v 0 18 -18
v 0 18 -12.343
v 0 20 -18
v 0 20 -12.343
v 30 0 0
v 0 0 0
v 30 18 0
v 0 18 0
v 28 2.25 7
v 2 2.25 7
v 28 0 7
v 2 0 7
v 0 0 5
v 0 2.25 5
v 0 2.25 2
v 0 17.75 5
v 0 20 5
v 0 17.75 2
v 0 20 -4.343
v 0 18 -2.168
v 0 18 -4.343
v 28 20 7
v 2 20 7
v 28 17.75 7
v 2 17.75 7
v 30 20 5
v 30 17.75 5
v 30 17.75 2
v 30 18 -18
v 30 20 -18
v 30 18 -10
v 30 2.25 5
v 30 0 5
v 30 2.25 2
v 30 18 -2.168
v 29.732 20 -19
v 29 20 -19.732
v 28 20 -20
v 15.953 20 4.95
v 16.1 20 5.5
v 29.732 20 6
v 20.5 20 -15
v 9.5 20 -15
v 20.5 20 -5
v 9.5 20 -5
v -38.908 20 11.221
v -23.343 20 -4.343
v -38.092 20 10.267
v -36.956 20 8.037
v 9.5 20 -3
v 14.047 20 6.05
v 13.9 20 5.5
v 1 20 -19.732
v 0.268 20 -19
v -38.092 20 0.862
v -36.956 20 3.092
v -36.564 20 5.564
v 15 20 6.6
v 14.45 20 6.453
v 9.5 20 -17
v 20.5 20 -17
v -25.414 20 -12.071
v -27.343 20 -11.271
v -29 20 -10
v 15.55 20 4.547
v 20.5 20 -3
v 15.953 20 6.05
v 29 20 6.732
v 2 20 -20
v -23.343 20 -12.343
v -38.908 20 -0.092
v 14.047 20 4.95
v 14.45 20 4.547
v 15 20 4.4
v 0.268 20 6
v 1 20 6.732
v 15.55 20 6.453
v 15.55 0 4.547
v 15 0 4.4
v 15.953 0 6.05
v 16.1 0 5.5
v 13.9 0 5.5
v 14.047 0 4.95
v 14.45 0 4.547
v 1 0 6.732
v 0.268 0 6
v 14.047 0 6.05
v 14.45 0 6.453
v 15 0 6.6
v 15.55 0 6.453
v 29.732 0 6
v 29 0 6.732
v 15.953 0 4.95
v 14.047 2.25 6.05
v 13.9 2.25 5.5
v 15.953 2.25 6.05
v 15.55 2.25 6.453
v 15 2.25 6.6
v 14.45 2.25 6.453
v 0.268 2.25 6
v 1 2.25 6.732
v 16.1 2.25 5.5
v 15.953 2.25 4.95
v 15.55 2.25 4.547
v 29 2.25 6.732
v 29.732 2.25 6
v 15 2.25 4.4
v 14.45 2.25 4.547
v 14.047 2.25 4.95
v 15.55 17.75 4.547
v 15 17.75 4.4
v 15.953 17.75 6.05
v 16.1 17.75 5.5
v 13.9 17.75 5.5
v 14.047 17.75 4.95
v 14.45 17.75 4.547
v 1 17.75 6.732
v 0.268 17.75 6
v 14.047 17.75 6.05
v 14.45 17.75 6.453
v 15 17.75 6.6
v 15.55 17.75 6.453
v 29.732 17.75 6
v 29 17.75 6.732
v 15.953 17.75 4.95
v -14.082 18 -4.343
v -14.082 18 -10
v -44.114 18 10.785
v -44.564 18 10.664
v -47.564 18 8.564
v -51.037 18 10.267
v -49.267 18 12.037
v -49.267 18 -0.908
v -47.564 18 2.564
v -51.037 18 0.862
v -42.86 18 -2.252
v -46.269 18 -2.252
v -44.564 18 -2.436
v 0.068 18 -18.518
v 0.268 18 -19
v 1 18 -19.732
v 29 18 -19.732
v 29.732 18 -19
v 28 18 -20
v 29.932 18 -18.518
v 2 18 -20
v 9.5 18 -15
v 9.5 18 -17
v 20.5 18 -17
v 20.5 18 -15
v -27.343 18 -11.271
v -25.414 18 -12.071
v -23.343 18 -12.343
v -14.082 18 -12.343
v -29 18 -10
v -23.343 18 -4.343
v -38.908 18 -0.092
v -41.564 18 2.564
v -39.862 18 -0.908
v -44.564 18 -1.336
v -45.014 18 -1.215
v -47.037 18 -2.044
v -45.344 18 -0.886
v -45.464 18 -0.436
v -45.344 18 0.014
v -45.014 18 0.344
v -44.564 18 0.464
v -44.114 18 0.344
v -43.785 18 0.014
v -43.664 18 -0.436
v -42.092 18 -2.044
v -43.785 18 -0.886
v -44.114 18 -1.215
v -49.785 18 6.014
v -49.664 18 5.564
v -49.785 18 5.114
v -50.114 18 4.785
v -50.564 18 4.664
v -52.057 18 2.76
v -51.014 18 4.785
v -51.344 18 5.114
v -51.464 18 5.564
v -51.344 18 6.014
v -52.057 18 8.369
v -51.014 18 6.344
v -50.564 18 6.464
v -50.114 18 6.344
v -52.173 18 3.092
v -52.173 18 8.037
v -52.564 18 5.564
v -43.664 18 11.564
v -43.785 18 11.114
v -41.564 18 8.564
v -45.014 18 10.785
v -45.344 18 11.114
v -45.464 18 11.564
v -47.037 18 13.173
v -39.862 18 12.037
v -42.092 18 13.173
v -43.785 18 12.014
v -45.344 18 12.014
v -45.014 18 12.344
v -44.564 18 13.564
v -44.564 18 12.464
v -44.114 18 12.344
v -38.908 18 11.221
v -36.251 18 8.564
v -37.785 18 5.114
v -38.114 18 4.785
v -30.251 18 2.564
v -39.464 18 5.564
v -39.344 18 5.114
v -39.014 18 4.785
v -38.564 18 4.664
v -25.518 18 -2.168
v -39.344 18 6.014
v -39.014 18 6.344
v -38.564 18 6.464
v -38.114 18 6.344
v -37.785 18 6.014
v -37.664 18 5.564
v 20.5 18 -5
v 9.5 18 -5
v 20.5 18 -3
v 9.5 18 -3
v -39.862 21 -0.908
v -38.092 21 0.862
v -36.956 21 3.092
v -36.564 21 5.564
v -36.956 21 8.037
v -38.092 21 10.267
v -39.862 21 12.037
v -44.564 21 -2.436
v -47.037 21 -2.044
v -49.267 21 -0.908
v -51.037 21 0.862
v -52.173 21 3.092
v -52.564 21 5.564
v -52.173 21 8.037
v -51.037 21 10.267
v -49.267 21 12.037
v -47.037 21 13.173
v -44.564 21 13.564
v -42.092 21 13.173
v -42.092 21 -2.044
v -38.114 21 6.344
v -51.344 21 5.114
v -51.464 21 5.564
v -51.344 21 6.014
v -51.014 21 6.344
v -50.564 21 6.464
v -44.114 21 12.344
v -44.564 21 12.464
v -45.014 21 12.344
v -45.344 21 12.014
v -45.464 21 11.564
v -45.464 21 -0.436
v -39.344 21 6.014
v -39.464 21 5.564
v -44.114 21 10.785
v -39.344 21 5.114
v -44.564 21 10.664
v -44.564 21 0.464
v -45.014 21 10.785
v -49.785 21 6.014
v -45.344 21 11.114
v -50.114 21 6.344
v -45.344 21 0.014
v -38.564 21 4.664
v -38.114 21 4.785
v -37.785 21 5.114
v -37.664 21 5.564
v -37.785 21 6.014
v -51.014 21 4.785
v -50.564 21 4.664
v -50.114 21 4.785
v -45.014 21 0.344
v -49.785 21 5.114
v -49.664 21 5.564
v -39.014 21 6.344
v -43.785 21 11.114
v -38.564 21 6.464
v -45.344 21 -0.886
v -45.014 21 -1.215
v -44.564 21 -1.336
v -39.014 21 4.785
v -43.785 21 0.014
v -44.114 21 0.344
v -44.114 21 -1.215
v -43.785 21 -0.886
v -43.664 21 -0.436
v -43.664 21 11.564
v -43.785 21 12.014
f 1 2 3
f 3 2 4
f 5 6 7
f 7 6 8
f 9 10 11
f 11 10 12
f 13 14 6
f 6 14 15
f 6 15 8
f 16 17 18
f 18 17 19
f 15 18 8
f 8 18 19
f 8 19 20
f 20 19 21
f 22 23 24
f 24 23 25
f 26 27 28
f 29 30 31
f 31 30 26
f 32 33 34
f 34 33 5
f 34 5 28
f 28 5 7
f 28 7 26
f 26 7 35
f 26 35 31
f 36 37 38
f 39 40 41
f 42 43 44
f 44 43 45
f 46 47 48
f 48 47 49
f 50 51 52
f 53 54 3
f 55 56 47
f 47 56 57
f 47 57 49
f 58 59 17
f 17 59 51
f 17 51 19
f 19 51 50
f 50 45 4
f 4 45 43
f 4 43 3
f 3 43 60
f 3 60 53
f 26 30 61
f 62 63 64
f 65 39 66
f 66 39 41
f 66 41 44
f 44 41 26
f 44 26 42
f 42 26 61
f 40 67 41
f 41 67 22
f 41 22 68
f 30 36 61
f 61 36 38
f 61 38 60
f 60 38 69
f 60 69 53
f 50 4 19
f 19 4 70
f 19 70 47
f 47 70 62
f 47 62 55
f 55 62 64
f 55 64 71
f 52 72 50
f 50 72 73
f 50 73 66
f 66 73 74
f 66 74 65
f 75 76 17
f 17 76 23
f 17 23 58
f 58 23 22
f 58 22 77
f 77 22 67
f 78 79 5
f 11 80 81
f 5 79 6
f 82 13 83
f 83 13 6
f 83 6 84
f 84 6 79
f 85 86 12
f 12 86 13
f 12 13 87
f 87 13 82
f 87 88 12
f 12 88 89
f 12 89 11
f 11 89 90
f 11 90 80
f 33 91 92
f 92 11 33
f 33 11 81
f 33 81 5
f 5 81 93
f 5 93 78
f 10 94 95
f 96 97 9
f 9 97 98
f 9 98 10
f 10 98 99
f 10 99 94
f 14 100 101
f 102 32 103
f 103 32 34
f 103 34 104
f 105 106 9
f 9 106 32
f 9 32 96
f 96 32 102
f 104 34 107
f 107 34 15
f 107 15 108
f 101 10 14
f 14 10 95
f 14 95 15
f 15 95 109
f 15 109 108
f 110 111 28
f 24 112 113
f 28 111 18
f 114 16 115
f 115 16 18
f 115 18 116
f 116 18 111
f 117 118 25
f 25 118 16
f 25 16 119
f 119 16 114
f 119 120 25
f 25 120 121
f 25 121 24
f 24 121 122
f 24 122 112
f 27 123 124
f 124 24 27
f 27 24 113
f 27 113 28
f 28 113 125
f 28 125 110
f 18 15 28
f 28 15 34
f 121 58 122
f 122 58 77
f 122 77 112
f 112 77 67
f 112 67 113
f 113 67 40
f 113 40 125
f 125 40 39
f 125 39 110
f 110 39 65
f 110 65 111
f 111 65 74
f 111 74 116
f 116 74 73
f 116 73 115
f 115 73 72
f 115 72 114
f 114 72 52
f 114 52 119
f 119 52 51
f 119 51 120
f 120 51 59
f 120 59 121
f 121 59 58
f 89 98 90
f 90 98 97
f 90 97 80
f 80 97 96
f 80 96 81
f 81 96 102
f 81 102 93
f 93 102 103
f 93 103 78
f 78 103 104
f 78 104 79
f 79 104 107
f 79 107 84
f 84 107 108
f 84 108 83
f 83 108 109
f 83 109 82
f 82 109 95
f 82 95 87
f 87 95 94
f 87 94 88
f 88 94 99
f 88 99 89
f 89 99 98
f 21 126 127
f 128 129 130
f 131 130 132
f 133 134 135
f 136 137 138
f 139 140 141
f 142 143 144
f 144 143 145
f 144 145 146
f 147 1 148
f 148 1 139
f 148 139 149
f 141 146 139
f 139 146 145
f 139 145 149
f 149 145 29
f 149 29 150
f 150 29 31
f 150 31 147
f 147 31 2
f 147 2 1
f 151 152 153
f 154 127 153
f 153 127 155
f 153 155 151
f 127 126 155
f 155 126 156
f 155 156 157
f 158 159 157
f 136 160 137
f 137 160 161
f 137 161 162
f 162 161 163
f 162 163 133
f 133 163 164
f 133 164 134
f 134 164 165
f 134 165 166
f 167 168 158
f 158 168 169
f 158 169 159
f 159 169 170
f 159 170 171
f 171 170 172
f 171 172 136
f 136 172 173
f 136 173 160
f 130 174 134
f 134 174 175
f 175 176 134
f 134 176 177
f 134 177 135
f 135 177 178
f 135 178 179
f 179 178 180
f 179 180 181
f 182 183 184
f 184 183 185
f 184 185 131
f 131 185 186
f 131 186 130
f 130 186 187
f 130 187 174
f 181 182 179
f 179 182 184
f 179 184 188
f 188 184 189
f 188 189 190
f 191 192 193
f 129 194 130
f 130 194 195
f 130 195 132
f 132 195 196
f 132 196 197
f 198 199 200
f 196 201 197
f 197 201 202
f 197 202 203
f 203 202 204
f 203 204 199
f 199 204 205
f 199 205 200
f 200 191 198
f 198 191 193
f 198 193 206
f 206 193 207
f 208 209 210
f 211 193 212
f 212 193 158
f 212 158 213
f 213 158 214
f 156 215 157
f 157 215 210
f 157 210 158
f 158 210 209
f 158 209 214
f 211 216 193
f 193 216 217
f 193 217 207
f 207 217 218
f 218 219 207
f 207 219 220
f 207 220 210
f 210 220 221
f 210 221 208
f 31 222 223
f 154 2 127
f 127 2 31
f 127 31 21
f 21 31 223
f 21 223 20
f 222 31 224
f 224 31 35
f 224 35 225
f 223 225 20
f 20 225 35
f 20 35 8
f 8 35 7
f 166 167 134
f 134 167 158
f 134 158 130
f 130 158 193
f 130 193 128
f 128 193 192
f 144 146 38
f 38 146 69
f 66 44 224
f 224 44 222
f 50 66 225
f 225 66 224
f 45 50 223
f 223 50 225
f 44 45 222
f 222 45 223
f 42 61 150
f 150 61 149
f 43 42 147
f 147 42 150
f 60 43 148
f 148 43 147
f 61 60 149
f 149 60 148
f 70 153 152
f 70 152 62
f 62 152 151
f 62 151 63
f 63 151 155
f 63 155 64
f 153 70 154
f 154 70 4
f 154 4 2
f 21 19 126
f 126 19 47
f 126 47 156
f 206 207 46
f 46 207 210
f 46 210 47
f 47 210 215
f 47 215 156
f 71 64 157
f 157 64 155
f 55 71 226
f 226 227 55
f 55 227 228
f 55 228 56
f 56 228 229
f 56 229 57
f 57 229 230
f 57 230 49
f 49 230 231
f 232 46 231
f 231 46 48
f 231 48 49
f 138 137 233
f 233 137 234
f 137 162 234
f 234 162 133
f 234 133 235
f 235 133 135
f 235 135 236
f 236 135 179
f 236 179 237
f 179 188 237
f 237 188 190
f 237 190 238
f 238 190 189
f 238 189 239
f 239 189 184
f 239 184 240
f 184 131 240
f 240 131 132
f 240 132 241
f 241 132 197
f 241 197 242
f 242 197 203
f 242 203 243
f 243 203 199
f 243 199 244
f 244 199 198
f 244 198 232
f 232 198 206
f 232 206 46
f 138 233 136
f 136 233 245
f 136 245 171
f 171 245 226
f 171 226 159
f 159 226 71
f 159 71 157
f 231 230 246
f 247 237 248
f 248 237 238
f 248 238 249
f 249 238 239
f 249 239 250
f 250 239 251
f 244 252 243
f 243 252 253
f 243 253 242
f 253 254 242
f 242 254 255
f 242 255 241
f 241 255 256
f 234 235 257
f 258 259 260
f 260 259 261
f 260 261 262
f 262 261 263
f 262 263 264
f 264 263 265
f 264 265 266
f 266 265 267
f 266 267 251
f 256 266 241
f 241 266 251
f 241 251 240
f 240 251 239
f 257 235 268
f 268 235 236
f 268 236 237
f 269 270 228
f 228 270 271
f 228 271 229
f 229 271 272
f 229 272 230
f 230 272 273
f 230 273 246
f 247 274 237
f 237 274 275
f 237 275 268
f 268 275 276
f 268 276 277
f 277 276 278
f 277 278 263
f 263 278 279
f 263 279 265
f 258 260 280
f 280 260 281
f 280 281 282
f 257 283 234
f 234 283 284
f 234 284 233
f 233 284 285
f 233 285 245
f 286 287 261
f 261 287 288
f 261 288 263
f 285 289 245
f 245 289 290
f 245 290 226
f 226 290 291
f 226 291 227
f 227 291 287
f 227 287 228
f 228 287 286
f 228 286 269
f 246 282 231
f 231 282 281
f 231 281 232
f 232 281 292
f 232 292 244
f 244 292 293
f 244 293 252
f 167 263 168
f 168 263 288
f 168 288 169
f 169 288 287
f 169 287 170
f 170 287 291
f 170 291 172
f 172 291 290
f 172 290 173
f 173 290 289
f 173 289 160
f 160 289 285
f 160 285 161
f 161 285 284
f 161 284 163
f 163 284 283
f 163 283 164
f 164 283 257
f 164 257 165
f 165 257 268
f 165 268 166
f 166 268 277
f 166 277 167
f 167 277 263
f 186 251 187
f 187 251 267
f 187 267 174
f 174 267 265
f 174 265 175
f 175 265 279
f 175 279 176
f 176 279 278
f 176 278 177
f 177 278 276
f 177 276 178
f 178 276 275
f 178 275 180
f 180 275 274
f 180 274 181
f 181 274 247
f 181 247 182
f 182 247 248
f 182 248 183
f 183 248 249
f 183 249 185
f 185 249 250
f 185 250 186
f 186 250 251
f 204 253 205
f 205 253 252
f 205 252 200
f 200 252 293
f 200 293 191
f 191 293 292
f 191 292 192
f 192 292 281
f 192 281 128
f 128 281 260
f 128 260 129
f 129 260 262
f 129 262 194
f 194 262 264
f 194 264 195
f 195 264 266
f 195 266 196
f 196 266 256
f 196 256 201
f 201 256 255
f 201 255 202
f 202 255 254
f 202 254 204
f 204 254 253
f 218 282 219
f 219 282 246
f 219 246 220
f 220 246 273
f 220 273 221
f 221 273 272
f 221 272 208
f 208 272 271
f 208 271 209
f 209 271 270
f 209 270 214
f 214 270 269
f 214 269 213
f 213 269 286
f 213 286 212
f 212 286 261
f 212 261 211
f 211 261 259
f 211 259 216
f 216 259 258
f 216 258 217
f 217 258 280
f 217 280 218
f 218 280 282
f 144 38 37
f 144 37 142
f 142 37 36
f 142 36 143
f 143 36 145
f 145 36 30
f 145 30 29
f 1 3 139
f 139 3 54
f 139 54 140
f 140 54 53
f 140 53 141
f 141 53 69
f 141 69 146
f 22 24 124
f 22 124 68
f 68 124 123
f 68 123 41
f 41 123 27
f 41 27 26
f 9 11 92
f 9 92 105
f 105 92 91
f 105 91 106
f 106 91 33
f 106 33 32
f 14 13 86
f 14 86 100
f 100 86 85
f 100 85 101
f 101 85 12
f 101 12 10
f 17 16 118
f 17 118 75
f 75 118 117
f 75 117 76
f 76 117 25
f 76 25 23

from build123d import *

# Parameters (mm, degrees)
SKETCH_1_W               = 30
SKETCH_1_H               = 7
EXTRUDE_1_DEPTH          = 20
SKETCH_2_W               = 30
SKETCH_2_H               = 15.5
CUT_EXTRUDE_1_DEPTH      = 5
CUT_EXTRUDE_2_DEPTH      = 37.728735344
CUT_EXTRUDE_2_DEPTH_BACK = 37.728735344
SKETCH_4_R               = 1.1
SKETCH_5_W               = 30
SKETCH_5_H               = 2
EXTRUDE_2_DEPTH          = 20
SKETCH_6_W               = 11
SKETCH_6_H               = 2
CUT_EXTRUDE_3_DEPTH      = 2
EXTRUDE_3_DEPTH          = 2
SKETCH_8_R               = 8
EXTRUDE_4_DEPTH          = 3
CUT_EXTRUDE_4_REACH      = 62.033
SKETCH_10_R              = 0.9
FILLET_1_R               = 2


with BuildPart() as part:
    # 草图1 → 凸台-拉伸1 (new body)
    with BuildSketch(Plane(origin=(0, 0, 0), x_dir=(1, 0, 0), z_dir=(0, 1, 0))):
        with Locations((15, -3.5)):
            Rectangle(SKETCH_1_W, SKETCH_1_H)
    extrude(amount=EXTRUDE_1_DEPTH)

    # 草图2 → 切除-拉伸1 (cut)
    with BuildSketch(Plane.XY.offset(7)):
        with Locations((15, 10)):
            Rectangle(SKETCH_2_W, SKETCH_2_H)
    extrude(amount=-CUT_EXTRUDE_1_DEPTH, mode=Mode.SUBTRACT)

    # 草图4 → 切除-拉伸2 (cut, two sides: drawn at the far end of the back side and taken through both)
    with BuildSketch(Plane(origin=(0, 20, 0), x_dir=(1, 0, 0), z_dir=(0, 1, 0)).offset(-CUT_EXTRUDE_2_DEPTH_BACK)):
        with Locations(Location((15, -5.5, 0), (0, 0, 270))):
            Circle(SKETCH_4_R)
    extrude(amount=CUT_EXTRUDE_2_DEPTH + CUT_EXTRUDE_2_DEPTH_BACK, mode=Mode.SUBTRACT)

    # 草图5 → 凸台-拉伸2 (add)
    with BuildSketch(Plane(origin=(0, 0, 0), x_dir=(-1, 0, 0), z_dir=(0, 0, -1))):
        with Locations((-15, 19)):
            Rectangle(SKETCH_5_W, SKETCH_5_H)
    extrude(amount=EXTRUDE_2_DEPTH)

    # 草图6 → 切除-拉伸3 (cut)
    with BuildSketch(Plane(origin=(0, 20, 0), x_dir=(1, 0, 0), z_dir=(0, 1, 0))):
        with Locations((15, 16)):
            Rectangle(SKETCH_6_W, SKETCH_6_H)
        with Locations((15, 4)):
            Rectangle(SKETCH_6_W, SKETCH_6_H)
    extrude(amount=-CUT_EXTRUDE_3_DEPTH, mode=Mode.SUBTRACT)

    # 草图7 → 凸台-拉伸3 (add)
    with BuildSketch(Plane.XZ.offset(-18)):
        with BuildLine():
            Line((0, -12.343145751), (0, -10))
            Line((0, -10), (0, -4.343145751))
            Line((0, -4.343145751), (-23.343145751, -4.343145751))
            Line((-23.343145751, -4.343145751), (-38.907528162, 11.221236661))
            Line((-38.907528162, 11.221236661), (-44.564382411, 5.564382411))
            Line((-44.564382411, 5.564382411), (-29, -10))
            ThreePointArc((-29, -10), (-26.404613209, -11.734182011), (-23.343145751, -12.343145751))
            Line((-23.343145751, -12.343145751), (0, -12.343145751))
        make_face()
    extrude(amount=-EXTRUDE_3_DEPTH)

    # 草图8 → 凸台-拉伸4 (add)
    with BuildSketch(Plane.XZ.offset(-18)):
        with Locations(Location((-44.564382411, 5.564382411, 0), (0, 0, 270))):
            Circle(SKETCH_8_R)
    extrude(amount=-EXTRUDE_4_DEPTH)

    # 草图10 → 切除-拉伸4 (cut, up to next)
    with BuildSketch(Plane(origin=(0, 21, 0), x_dir=(1, 0, 0), z_dir=(0, 1, 0)), mode=Mode.PRIVATE) as cut_extrude_4_sk1:
        with Locations(Location((-38.564382411, -5.564382411, 0), (0, 0, 270))):
            Circle(SKETCH_10_R)
    cut_extrude_4_tool1 = extrude(cut_extrude_4_sk1.sketch, amount=-CUT_EXTRUDE_4_REACH, mode=Mode.PRIVATE) & part.part
    # 草图10 → 切除-拉伸4 (cut, up to next)
    with BuildSketch(Plane(origin=(0, 21, 0), x_dir=(1, 0, 0), z_dir=(0, 1, 0)), mode=Mode.PRIVATE) as cut_extrude_4_sk2:
        with Locations(Location((-44.564382411, -11.564382411, 0), (0, 0, 270))):
            Circle(SKETCH_10_R)
    cut_extrude_4_tool2 = extrude(cut_extrude_4_sk2.sketch, amount=-CUT_EXTRUDE_4_REACH, mode=Mode.PRIVATE) & part.part
    # 草图10 → 切除-拉伸4 (cut, up to next)
    with BuildSketch(Plane(origin=(0, 21, 0), x_dir=(1, 0, 0), z_dir=(0, 1, 0)), mode=Mode.PRIVATE) as cut_extrude_4_sk3:
        with Locations(Location((-50.564382411, -5.564382411, 0), (0, 0, 270))):
            Circle(SKETCH_10_R)
    cut_extrude_4_tool3 = extrude(cut_extrude_4_sk3.sketch, amount=-CUT_EXTRUDE_4_REACH, mode=Mode.PRIVATE) & part.part
    # 草图10 → 切除-拉伸4 (cut, up to next)
    with BuildSketch(Plane(origin=(0, 21, 0), x_dir=(1, 0, 0), z_dir=(0, 1, 0)), mode=Mode.PRIVATE) as cut_extrude_4_sk4:
        with Locations(Location((-44.564382411, 0.435617589, 0), (0, 0, 270))):
            Circle(SKETCH_10_R)
    cut_extrude_4_tool4 = extrude(cut_extrude_4_sk4.sketch, amount=-CUT_EXTRUDE_4_REACH, mode=Mode.PRIVATE) & part.part
    add(cut_extrude_4_tool1.solids().sort_by_distance((-38.564382, 21, 5.564382))[0], mode=Mode.SUBTRACT)
    add(cut_extrude_4_tool2.solids().sort_by_distance((-44.564382, 21, 11.564382))[0], mode=Mode.SUBTRACT)
    add(cut_extrude_4_tool3.solids().sort_by_distance((-50.564382, 21, 5.564382))[0], mode=Mode.SUBTRACT)
    add(cut_extrude_4_tool4.solids().sort_by_distance((-44.564382, 21, -0.435618))[0], mode=Mode.SUBTRACT)

    # 圆角1
    fillet_1_edges = [part.edges().sort_by_distance(p)[0] for p in [
        (30, 1.125, 7),
        (0, 1.125, 7),
        (30, 19, -20),
        (0, 19, -20),
        (30, 18.875, 7),
        (0, 18.875, 7),
    ]]
    fillet(fillet_1_edges, radius=FILLET_1_R)


solid = part.part
